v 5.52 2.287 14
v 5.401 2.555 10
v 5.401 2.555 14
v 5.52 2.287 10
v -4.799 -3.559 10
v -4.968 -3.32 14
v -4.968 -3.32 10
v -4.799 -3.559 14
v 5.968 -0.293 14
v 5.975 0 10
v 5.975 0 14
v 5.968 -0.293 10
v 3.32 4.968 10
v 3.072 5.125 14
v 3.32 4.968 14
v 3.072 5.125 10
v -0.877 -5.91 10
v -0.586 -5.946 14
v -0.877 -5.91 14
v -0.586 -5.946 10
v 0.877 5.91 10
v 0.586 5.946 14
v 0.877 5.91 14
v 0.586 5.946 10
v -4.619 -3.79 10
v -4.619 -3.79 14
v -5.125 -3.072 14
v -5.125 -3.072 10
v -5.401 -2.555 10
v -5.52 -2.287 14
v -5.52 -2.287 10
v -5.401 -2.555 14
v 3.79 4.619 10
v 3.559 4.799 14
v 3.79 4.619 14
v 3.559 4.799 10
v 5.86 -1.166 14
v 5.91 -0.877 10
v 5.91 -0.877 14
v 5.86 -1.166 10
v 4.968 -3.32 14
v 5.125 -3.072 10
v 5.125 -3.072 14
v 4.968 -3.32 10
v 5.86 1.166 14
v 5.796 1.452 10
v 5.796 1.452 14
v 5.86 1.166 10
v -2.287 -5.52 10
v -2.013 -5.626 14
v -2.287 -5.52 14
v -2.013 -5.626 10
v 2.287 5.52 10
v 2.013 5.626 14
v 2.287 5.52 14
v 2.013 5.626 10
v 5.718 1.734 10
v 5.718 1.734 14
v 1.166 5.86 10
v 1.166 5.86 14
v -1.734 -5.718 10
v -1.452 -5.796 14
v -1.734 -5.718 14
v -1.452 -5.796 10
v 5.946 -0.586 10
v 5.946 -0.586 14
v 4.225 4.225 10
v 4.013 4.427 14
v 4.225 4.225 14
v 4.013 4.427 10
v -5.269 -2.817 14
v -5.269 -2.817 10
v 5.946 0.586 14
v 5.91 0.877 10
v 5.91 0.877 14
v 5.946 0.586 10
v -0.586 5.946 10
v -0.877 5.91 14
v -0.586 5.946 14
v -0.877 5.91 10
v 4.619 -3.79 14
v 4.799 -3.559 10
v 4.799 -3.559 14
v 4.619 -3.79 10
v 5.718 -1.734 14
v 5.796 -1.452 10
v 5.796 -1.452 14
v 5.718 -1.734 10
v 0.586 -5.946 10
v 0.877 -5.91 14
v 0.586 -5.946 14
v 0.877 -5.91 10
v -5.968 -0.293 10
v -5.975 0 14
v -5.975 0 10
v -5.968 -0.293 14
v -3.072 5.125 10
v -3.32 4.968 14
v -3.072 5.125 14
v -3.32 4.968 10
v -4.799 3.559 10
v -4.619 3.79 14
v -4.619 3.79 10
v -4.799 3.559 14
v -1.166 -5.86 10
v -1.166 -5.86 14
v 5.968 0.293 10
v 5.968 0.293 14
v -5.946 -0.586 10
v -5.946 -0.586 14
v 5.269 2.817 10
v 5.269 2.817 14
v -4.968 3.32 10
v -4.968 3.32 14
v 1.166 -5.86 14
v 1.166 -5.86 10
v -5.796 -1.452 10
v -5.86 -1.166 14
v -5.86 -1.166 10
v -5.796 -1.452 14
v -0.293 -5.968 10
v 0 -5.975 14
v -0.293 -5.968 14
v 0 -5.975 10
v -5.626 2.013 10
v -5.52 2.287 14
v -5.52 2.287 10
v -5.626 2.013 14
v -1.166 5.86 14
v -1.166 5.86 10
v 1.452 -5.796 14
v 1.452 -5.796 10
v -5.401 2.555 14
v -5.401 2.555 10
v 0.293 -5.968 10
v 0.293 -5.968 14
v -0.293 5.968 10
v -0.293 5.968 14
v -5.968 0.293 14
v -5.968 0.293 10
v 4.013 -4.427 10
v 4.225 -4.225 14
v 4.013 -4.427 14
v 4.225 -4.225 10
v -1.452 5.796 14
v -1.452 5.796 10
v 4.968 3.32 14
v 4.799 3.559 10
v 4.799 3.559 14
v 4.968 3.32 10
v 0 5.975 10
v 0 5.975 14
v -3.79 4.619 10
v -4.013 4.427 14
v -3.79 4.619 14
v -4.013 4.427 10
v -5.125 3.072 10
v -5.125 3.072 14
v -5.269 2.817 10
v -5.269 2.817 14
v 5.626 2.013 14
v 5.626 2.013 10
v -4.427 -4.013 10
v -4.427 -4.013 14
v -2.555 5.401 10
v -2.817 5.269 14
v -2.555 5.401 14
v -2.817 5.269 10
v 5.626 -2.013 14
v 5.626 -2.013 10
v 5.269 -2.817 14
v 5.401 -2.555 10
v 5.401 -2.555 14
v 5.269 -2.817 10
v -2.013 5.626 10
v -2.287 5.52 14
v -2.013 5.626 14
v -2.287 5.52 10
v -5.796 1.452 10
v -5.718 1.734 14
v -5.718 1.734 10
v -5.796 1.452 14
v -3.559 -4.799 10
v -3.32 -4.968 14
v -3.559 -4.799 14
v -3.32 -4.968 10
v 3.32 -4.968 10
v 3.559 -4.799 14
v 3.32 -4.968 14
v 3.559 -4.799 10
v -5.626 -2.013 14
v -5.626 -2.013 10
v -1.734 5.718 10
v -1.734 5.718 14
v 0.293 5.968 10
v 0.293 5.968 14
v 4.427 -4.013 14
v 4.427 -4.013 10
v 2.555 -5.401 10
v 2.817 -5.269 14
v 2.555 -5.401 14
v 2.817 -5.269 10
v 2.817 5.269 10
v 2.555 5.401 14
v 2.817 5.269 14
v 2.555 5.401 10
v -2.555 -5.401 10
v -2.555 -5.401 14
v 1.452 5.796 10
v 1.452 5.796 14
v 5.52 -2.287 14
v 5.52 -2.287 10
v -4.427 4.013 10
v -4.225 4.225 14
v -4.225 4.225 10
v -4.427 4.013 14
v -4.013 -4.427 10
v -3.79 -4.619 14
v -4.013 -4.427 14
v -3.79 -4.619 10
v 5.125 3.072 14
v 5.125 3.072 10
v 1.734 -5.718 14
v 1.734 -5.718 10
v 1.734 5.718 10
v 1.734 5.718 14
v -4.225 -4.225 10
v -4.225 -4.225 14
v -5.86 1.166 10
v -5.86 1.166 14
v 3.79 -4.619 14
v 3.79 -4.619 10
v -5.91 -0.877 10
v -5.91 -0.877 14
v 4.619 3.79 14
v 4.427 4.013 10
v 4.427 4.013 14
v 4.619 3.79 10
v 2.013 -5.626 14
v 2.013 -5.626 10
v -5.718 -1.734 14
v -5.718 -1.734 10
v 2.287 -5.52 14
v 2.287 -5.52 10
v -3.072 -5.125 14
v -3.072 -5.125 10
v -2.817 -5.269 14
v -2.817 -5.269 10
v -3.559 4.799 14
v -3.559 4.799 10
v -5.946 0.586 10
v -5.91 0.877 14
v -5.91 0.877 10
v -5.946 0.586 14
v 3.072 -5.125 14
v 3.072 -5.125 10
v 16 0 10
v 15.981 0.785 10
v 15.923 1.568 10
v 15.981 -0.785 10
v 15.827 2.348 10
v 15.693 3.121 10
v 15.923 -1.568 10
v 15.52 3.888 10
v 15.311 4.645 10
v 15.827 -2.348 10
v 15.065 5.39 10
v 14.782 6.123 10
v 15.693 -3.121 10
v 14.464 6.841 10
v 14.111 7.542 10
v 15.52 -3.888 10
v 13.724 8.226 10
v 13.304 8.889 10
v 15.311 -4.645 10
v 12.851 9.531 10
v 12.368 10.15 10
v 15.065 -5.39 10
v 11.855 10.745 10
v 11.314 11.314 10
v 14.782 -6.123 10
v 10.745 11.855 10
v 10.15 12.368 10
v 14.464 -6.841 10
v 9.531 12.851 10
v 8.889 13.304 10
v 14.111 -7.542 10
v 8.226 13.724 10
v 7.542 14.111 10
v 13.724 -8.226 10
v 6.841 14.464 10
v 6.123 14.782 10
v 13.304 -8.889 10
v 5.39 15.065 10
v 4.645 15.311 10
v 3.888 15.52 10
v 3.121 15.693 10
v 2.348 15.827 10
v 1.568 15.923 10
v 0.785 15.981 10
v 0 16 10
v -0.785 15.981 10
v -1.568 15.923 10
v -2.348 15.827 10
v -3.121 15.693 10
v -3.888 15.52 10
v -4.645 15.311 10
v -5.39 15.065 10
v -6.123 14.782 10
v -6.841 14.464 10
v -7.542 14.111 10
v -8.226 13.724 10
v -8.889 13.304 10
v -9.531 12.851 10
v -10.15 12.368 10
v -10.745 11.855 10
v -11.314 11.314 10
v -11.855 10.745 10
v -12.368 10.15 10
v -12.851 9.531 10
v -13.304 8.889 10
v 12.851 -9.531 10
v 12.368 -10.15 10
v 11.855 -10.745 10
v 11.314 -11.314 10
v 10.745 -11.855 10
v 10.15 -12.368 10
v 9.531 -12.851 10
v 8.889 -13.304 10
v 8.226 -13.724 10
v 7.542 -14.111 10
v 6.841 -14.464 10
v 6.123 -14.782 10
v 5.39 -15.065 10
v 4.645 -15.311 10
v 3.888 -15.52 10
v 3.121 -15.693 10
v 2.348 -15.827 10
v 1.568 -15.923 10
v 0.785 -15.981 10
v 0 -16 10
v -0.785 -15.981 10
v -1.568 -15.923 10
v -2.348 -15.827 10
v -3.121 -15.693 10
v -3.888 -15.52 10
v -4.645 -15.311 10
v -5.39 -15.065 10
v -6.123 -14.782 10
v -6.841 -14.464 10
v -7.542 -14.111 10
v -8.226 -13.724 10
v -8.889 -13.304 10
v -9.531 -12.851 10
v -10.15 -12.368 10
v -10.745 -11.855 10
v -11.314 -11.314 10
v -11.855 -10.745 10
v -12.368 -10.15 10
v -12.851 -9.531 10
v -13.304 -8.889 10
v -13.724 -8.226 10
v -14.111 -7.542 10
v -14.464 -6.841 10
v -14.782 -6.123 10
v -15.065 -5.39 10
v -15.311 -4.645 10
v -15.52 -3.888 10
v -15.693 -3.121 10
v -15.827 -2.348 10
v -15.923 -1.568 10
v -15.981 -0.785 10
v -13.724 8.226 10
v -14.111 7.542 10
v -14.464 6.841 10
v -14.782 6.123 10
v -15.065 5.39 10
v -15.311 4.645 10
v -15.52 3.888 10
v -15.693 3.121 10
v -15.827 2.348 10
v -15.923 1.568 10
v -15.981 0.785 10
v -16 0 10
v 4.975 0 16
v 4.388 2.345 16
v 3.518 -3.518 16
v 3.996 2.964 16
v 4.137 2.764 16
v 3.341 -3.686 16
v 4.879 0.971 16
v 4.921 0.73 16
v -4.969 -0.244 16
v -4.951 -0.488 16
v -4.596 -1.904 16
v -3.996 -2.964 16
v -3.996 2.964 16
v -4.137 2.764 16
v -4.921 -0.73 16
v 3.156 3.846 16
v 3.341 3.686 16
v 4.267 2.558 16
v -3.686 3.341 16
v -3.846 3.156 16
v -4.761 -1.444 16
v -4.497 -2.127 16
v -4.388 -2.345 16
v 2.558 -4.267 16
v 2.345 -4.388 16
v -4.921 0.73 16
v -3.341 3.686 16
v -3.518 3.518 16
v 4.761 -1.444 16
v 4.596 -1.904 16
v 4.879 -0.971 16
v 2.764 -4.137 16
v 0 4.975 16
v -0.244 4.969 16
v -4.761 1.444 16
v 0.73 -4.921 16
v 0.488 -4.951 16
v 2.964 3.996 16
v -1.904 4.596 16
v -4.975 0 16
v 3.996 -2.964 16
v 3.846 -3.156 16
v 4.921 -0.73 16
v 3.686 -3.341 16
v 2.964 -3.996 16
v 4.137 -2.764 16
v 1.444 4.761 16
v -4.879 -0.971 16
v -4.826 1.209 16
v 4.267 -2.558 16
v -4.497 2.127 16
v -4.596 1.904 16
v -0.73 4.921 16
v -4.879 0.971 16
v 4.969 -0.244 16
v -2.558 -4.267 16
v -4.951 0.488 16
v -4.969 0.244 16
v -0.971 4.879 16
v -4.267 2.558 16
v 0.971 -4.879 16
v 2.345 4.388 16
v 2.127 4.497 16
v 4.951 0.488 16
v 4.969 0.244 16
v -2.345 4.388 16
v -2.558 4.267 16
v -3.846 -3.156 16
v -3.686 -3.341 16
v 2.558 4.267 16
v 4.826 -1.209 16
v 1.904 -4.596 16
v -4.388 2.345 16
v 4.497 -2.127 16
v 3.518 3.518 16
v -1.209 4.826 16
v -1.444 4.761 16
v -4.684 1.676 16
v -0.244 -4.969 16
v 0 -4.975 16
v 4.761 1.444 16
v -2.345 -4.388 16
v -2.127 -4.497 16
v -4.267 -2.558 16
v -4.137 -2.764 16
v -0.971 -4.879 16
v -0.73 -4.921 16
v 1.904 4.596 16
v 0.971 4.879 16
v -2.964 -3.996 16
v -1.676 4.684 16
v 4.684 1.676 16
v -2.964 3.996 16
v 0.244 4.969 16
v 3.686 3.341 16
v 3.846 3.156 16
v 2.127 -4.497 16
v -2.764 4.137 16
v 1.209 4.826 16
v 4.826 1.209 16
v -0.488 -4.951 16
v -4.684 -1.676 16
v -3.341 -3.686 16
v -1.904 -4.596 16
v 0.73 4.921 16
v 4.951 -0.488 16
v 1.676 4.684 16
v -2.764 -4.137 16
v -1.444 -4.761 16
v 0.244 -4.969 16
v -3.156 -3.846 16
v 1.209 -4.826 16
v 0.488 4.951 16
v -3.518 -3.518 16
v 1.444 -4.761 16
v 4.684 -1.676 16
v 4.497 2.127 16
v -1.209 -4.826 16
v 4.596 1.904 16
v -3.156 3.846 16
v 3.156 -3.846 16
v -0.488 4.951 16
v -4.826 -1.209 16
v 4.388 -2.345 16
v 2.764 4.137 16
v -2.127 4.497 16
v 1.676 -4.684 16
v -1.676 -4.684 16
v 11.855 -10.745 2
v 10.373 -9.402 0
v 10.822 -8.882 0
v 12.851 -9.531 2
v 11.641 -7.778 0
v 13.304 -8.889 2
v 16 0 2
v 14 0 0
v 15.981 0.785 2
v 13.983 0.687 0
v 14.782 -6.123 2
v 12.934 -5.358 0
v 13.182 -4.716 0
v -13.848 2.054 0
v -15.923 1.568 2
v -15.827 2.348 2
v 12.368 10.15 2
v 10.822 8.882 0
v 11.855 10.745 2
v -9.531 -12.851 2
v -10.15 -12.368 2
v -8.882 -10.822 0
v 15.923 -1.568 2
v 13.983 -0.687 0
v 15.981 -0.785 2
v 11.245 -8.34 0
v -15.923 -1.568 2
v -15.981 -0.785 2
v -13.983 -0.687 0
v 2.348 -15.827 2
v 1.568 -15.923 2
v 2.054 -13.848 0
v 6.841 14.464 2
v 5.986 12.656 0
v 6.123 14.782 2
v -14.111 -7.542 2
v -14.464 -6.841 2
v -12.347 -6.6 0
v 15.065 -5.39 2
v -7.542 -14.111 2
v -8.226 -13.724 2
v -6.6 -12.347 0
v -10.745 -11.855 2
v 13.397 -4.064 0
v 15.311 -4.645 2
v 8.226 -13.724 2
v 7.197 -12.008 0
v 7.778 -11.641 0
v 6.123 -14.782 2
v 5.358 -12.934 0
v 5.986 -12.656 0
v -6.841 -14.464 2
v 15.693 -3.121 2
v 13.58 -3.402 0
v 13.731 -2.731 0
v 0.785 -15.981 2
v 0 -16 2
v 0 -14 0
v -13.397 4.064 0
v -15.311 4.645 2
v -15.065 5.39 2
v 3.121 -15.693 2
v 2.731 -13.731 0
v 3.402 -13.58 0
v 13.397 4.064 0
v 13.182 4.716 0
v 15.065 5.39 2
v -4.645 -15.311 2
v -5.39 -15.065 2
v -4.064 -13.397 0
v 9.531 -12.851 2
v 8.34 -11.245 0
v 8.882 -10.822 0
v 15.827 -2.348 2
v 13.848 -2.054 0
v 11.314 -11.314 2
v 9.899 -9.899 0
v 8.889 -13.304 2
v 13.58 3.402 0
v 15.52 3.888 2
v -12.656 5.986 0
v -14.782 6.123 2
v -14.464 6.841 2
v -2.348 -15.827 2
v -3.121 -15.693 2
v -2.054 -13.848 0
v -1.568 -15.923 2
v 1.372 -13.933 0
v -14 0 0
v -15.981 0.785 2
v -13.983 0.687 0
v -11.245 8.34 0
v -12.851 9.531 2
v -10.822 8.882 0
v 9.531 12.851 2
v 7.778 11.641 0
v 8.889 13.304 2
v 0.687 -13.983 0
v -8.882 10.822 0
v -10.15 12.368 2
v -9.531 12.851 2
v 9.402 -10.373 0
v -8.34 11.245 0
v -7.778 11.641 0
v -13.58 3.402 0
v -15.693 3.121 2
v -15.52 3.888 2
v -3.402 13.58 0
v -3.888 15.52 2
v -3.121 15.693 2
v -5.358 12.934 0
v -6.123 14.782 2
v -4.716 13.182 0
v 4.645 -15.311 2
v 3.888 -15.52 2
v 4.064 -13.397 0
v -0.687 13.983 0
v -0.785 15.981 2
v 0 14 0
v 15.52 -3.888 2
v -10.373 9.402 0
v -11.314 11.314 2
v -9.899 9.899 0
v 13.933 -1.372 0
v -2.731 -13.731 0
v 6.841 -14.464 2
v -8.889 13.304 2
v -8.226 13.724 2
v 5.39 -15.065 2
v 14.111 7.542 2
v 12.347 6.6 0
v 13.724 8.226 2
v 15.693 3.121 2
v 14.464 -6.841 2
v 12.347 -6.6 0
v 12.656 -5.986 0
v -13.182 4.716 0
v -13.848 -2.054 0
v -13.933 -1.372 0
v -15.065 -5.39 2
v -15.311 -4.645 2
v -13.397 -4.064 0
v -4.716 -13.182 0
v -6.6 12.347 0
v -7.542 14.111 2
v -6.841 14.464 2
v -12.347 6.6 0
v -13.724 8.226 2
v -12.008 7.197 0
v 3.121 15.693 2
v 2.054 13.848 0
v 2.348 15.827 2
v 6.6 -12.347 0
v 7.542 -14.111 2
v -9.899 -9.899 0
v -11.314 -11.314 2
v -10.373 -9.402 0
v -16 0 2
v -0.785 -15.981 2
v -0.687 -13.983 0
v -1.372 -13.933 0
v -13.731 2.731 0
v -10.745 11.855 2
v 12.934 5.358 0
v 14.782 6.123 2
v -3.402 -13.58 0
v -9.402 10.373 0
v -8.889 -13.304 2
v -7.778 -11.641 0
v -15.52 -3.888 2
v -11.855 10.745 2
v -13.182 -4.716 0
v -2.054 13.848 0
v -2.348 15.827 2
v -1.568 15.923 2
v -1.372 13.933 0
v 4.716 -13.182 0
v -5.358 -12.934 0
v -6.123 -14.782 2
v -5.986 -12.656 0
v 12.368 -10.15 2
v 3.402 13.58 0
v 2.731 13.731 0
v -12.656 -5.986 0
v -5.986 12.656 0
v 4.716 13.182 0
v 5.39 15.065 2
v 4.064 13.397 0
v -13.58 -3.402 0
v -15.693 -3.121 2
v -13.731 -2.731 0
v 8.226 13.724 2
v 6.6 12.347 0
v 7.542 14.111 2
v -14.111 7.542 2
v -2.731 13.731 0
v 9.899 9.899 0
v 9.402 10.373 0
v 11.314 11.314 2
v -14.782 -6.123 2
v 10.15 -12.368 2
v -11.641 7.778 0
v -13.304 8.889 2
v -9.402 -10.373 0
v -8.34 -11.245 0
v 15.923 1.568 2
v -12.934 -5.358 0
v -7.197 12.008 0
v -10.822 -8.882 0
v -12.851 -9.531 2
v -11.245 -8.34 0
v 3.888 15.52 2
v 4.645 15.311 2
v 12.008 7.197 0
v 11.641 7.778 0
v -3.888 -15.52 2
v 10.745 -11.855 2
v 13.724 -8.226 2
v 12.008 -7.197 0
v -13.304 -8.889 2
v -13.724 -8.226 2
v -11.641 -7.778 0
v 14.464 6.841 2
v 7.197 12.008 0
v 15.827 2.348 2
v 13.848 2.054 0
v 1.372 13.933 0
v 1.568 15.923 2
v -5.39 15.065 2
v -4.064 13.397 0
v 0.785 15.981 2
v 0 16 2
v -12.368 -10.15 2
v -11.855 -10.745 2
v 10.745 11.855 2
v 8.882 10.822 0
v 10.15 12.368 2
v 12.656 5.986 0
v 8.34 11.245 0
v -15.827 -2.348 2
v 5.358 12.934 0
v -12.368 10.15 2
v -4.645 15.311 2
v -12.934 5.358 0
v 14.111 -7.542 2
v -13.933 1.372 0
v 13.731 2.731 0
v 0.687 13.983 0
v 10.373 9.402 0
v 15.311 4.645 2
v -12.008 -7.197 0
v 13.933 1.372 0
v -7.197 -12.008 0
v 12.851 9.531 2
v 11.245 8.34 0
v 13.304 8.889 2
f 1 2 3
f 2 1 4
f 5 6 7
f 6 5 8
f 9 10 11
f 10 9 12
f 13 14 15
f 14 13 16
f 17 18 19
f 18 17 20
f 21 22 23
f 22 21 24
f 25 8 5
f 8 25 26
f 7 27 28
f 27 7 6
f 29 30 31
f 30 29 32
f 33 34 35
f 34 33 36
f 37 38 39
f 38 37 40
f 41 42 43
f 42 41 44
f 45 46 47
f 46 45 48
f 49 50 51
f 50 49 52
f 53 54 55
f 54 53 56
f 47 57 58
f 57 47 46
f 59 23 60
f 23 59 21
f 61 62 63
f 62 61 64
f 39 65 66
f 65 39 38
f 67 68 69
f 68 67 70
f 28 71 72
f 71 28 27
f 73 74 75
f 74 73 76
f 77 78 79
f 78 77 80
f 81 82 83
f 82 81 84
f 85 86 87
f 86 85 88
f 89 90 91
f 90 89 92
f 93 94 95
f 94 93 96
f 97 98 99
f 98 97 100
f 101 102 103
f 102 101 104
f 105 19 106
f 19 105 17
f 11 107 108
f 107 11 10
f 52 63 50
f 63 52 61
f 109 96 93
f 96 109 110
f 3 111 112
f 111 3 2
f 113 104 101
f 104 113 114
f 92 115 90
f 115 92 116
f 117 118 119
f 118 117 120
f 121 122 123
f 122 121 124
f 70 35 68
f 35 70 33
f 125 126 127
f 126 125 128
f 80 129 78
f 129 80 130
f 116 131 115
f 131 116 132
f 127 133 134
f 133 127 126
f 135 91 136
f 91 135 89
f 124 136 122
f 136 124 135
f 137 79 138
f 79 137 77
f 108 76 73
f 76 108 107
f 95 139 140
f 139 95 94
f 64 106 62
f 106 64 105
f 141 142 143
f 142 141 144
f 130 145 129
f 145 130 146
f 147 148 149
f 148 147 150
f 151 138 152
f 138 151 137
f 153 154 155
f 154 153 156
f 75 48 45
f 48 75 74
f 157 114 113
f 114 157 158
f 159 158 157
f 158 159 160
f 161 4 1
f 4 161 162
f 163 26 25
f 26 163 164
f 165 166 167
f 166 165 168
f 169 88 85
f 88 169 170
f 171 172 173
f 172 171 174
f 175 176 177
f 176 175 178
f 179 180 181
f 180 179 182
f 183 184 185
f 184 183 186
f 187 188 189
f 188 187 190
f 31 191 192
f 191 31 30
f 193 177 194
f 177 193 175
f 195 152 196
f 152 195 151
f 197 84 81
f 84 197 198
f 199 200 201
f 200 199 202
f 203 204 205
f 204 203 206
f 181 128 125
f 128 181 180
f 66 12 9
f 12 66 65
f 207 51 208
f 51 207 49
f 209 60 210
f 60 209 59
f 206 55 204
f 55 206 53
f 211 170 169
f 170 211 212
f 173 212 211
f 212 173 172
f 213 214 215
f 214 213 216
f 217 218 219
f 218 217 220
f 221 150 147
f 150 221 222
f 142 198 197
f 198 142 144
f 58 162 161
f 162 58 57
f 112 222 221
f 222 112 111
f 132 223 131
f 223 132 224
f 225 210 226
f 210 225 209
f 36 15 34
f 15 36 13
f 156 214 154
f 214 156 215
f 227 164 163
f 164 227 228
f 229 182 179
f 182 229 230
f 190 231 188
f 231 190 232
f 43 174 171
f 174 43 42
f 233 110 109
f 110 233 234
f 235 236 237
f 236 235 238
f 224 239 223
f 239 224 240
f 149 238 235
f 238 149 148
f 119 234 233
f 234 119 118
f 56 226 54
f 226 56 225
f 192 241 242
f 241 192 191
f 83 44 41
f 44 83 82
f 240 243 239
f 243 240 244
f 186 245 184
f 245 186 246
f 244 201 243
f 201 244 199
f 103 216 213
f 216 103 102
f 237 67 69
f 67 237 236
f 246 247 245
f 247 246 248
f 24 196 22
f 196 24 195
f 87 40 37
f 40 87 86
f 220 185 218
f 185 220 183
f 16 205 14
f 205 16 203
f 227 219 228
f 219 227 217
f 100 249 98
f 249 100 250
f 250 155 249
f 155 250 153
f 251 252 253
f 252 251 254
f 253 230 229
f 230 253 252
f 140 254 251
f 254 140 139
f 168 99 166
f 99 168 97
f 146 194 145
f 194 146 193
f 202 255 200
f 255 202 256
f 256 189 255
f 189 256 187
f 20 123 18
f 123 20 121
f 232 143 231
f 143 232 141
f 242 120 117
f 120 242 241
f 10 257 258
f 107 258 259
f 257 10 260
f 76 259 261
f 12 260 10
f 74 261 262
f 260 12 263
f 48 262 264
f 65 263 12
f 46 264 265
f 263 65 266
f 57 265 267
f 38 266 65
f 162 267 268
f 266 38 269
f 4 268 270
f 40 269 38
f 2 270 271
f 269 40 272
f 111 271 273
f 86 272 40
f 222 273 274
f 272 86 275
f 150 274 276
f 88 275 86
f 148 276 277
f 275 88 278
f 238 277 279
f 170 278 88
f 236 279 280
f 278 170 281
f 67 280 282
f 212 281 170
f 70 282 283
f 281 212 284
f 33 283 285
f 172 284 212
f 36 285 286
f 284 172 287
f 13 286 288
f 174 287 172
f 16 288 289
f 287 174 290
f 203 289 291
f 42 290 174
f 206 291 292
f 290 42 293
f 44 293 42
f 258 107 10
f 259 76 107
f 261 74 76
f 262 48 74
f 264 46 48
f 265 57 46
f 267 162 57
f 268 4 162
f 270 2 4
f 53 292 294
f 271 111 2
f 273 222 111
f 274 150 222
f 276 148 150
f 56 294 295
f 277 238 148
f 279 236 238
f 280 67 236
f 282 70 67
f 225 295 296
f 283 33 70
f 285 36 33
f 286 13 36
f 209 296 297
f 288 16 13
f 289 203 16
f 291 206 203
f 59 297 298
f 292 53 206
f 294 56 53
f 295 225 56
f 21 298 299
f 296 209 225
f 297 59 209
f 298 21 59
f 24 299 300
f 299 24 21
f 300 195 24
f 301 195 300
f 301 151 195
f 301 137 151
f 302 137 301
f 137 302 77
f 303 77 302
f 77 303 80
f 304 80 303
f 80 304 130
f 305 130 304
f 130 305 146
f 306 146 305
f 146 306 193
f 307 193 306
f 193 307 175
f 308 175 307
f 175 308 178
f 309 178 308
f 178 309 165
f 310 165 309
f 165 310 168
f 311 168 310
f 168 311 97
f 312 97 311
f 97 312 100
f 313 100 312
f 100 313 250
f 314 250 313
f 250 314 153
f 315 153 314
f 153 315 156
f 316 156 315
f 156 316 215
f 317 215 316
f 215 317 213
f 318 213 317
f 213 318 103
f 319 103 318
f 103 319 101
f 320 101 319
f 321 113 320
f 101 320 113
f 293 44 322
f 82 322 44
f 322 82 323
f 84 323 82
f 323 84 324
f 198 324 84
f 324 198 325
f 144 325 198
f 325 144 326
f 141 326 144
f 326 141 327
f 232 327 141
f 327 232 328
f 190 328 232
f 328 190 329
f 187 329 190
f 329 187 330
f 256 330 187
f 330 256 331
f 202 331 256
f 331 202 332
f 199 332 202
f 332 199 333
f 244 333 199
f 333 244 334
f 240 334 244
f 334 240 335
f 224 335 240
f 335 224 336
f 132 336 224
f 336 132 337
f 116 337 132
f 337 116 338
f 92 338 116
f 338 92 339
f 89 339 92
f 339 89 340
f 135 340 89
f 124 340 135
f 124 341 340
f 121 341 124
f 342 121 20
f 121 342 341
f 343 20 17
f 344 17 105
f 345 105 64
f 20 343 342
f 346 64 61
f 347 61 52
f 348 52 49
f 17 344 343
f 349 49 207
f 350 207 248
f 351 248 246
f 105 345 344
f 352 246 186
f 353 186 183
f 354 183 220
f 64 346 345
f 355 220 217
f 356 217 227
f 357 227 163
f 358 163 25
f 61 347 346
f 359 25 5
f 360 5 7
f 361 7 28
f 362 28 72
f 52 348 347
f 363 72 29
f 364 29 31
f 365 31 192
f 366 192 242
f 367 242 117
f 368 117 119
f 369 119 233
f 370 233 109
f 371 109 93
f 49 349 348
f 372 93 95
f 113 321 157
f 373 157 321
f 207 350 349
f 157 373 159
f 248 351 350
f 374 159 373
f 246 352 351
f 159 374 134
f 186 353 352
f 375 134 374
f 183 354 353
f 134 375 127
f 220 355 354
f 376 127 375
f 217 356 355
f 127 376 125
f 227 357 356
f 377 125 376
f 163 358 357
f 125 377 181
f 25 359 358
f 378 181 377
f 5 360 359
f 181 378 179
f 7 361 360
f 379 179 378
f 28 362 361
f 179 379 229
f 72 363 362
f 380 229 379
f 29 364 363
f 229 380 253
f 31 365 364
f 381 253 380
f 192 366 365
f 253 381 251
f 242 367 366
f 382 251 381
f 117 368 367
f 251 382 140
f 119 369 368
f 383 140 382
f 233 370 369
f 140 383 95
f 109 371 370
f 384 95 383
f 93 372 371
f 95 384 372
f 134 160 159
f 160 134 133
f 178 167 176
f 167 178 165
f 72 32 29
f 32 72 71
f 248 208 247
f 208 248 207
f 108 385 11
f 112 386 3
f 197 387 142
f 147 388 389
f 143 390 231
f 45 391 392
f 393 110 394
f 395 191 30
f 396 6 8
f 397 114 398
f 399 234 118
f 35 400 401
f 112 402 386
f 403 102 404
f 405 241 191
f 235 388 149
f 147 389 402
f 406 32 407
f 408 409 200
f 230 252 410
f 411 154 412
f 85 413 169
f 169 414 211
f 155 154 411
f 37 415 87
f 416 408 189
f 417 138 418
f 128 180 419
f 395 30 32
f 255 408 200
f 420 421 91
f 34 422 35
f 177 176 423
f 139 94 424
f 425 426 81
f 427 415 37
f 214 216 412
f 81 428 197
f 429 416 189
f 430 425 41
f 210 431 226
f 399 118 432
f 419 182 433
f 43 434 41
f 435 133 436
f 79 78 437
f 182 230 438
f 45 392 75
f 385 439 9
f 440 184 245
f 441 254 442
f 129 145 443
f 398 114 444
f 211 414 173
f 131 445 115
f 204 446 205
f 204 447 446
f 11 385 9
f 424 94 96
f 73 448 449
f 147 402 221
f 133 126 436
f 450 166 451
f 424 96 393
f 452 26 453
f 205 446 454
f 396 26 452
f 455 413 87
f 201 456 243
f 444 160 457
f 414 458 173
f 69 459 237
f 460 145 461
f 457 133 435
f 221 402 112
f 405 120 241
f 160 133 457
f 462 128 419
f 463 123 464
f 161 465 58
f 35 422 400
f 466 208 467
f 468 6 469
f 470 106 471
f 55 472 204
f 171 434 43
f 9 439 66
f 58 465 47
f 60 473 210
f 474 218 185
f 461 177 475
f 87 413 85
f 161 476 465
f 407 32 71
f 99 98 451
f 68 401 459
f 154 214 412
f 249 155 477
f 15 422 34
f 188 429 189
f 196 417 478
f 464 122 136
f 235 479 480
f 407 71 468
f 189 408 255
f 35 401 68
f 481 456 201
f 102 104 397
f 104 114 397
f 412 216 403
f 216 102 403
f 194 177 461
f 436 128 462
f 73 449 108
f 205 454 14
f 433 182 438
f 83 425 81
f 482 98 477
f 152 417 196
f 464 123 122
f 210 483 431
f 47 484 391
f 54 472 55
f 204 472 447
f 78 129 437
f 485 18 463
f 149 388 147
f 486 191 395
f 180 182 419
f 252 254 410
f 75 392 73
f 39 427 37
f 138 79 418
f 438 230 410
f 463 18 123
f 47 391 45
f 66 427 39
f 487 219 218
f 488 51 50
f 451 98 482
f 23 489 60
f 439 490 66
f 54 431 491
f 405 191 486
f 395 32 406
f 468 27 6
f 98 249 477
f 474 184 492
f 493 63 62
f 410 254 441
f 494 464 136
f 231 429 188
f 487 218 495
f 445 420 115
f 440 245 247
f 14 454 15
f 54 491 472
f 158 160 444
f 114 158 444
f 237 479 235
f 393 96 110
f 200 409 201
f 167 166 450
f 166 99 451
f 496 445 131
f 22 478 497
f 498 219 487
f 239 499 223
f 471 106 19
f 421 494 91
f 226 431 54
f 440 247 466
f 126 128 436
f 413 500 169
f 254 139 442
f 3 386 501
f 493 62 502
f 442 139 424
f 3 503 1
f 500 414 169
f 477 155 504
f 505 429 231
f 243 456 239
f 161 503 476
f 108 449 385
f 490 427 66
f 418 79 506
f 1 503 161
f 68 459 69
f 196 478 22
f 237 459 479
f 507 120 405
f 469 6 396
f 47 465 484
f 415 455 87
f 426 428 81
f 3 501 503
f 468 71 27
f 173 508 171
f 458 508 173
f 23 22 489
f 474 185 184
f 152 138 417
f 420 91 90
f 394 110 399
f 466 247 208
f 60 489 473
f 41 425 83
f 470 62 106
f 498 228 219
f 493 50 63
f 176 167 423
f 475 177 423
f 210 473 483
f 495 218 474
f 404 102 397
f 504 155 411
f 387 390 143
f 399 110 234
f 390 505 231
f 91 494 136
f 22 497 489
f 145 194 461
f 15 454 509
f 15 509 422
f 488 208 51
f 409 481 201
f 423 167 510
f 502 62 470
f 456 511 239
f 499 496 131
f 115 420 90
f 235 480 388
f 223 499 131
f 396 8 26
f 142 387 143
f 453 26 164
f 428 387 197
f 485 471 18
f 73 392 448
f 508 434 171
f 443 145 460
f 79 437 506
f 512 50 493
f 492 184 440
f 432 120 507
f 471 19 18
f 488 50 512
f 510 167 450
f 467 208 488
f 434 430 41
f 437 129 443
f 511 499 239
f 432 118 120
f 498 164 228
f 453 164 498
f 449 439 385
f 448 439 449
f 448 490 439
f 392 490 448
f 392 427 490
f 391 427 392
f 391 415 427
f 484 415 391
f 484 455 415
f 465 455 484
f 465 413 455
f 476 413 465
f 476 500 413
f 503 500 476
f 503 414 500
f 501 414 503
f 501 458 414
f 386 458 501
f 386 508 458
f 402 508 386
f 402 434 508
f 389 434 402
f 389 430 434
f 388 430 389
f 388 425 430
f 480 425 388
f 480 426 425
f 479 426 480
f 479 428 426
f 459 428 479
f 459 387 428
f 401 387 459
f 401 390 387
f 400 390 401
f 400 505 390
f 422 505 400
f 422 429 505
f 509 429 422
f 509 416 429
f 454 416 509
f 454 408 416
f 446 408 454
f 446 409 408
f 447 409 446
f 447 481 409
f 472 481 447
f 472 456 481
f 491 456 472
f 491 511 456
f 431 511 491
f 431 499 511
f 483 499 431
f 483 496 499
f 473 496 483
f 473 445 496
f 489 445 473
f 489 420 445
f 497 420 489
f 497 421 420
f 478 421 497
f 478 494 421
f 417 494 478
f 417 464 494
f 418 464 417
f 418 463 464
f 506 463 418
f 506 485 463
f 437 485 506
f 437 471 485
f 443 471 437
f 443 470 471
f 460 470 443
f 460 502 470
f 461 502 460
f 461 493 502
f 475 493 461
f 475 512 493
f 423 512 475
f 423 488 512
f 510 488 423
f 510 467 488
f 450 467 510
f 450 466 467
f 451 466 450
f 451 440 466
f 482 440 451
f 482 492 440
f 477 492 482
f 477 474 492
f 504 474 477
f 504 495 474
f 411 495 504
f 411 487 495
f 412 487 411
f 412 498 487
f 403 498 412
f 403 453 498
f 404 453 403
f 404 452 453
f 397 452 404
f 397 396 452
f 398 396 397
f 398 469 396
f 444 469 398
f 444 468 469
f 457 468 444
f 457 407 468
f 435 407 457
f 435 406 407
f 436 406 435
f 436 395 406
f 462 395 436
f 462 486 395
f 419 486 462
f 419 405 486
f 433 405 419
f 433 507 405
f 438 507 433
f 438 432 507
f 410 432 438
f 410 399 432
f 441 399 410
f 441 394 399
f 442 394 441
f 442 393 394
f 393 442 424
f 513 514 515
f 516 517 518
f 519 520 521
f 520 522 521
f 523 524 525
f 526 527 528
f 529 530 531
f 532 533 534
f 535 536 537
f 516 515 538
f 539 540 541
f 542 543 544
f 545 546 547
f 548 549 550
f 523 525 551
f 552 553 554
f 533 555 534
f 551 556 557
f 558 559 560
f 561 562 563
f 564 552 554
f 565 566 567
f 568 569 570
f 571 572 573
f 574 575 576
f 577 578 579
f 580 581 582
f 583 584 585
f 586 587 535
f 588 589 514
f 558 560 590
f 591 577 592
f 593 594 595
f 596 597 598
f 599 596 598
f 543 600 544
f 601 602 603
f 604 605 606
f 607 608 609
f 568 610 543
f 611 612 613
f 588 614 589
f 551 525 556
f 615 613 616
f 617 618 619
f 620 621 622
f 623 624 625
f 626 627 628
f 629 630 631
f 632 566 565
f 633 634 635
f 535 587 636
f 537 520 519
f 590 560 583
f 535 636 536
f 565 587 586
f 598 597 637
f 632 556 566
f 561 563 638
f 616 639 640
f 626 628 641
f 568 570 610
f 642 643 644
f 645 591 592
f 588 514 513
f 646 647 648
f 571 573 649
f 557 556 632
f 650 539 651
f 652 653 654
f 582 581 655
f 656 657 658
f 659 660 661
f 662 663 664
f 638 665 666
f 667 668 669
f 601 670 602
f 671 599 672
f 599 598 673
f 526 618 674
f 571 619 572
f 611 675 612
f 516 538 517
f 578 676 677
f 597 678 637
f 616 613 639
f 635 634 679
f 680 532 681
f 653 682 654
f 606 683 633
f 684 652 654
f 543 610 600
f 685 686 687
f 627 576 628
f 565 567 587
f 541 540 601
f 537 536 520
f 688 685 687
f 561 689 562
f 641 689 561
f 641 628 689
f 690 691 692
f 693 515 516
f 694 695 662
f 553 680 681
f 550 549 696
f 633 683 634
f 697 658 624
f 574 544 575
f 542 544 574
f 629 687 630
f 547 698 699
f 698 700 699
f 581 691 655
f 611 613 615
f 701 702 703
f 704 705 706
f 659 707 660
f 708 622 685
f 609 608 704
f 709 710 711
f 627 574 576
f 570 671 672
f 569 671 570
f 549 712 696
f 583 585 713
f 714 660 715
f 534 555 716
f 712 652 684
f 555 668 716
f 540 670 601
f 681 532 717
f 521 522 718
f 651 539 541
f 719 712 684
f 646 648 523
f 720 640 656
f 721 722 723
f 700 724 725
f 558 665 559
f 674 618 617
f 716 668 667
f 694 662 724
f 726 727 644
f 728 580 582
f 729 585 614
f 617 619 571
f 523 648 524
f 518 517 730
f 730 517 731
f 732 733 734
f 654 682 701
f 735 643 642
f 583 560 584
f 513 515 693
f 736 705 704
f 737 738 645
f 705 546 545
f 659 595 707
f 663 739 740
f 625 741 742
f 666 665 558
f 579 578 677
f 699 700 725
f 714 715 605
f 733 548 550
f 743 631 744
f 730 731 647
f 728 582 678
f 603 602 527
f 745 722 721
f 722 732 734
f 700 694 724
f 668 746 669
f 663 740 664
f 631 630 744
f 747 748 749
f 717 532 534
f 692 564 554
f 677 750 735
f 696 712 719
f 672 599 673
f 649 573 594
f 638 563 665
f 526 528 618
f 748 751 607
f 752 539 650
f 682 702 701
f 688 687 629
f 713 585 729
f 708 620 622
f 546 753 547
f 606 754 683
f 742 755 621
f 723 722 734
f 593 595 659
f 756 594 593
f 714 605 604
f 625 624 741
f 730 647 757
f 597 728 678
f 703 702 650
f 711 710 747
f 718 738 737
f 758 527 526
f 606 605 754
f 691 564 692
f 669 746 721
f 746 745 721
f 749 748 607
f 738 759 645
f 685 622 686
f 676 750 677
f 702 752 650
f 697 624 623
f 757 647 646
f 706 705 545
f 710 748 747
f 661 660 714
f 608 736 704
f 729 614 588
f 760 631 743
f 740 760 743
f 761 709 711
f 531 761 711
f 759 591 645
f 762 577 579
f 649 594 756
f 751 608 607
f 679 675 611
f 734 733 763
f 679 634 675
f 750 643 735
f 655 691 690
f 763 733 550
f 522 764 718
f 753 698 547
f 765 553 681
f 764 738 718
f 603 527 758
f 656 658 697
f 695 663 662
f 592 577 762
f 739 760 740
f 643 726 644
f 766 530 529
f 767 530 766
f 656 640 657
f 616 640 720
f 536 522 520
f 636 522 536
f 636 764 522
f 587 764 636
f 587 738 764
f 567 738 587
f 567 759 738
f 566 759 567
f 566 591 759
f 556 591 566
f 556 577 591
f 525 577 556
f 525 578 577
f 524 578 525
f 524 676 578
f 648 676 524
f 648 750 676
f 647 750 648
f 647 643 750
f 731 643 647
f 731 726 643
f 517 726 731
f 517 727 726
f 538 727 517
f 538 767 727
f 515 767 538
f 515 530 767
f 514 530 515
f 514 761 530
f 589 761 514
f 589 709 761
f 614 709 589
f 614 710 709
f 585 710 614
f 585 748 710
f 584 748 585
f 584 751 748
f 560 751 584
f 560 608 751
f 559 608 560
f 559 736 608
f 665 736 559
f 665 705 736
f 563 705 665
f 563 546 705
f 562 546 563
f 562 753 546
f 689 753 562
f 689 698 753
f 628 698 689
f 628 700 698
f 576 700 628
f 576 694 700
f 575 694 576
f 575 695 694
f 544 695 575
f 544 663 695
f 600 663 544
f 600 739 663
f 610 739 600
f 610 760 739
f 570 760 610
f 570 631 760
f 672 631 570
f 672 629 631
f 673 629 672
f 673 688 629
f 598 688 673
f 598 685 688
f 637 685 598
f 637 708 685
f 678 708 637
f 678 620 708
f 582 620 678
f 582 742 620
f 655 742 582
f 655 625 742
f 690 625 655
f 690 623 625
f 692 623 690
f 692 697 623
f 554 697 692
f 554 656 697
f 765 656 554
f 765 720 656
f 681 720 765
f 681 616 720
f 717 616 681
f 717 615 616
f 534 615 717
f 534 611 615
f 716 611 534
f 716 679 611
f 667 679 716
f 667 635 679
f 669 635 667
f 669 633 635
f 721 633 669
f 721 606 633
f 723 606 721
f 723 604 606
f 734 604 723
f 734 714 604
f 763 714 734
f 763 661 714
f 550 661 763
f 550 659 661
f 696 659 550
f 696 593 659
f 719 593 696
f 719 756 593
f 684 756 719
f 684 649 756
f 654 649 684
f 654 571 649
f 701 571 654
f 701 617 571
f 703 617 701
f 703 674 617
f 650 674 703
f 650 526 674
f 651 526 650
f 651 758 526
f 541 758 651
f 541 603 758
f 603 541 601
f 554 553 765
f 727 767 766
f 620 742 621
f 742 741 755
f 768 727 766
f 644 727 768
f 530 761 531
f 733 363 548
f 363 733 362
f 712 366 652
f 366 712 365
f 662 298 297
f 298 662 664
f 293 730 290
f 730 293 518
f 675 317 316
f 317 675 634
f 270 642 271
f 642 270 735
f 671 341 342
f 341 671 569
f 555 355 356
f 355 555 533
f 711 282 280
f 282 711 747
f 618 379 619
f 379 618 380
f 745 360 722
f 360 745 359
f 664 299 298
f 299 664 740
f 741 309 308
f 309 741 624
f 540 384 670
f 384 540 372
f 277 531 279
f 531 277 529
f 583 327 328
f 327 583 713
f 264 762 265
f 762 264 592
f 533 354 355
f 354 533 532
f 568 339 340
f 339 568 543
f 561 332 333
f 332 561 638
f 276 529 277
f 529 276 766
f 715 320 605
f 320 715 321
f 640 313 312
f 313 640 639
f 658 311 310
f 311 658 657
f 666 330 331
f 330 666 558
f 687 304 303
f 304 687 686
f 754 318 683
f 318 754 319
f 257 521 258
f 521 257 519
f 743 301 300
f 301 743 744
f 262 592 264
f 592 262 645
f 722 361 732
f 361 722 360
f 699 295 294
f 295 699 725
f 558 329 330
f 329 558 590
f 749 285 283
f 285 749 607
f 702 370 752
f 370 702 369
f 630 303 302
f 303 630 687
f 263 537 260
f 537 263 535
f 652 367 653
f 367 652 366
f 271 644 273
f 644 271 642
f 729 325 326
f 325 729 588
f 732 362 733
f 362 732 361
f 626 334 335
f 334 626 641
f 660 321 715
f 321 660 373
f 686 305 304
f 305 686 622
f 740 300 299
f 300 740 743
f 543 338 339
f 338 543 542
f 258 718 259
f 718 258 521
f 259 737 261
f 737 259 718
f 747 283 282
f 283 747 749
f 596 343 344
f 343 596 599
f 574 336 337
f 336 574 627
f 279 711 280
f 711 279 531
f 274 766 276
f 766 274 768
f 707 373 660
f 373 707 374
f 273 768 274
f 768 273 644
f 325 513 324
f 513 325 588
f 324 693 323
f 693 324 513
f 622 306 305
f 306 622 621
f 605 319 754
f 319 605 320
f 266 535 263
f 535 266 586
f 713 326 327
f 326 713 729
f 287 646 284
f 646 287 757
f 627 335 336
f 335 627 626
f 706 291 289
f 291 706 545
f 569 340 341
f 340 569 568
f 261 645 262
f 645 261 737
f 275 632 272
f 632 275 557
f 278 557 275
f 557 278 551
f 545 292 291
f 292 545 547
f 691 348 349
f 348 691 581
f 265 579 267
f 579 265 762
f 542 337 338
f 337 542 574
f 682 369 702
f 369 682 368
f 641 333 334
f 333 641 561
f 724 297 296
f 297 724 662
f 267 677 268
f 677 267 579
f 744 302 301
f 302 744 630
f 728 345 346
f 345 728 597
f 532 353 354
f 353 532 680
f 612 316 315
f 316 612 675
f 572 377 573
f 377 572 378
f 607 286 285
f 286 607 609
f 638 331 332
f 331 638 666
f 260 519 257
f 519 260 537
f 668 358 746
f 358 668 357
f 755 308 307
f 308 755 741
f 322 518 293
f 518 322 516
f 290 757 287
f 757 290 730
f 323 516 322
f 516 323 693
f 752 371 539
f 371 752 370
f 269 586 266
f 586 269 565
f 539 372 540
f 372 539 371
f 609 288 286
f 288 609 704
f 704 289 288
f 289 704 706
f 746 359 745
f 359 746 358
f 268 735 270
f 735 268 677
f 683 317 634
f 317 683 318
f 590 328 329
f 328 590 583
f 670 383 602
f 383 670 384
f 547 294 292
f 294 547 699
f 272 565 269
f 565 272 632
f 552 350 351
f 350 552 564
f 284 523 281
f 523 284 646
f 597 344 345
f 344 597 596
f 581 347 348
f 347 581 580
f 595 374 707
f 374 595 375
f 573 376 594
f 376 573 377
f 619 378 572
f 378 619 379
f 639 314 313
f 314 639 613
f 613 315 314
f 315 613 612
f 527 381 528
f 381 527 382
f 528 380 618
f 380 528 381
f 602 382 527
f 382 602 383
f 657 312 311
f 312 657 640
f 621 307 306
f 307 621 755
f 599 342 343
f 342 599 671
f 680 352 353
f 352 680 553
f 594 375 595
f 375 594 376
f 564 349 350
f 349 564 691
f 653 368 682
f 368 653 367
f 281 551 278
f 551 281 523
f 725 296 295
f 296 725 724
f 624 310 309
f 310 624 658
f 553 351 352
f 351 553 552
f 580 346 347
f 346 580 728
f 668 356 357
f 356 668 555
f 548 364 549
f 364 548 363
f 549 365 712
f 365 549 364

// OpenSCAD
// file: common.scad
// Model by Isaac Foraker
//
// Released under Creative Commons Attribution 4.0 International (CC BY 4.0)
// https://creativecommons.org/licenses/by/4.0/

$fn = 128;

// Wheel info
wheel_width = 4;
wheel_rad = 5;
wheel_hole_rad = 2;

// Track info
track_wall_thickness = 2;
track_wall_height = 5;
track_width = wheel_width + 0.5; // Need enough room for the wheel to fit in the arc of the circle
track_rad = 70;

// Simple ring creator.  `rad` is the inside radius of the ring.
module ring(rad, thickness, height) {
    rotate_extrude(convexity=10) translate([rad,0,0]) square([thickness,height]);
}
// main file
// Model by Isaac Foraker
//
// Released under Creative Commons Attribution 4.0 International (CC BY 4.0)
// https://creativecommons.org/licenses/by/4.0/

// Spindle to fit a Polymaker 5kg spool

include <common.scad>

h = track_wall_thickness+2;

cylinder(r1=14,r2=16,h=2);
translate([0,0,2]) cylinder(r=16, h=8);
translate([0,0,10]) {
    cylinder(r=5.975, h=h);
    translate([0,0,h])
        cylinder(r1=5.975, r2=4.975, h = track_wall_thickness);
}
